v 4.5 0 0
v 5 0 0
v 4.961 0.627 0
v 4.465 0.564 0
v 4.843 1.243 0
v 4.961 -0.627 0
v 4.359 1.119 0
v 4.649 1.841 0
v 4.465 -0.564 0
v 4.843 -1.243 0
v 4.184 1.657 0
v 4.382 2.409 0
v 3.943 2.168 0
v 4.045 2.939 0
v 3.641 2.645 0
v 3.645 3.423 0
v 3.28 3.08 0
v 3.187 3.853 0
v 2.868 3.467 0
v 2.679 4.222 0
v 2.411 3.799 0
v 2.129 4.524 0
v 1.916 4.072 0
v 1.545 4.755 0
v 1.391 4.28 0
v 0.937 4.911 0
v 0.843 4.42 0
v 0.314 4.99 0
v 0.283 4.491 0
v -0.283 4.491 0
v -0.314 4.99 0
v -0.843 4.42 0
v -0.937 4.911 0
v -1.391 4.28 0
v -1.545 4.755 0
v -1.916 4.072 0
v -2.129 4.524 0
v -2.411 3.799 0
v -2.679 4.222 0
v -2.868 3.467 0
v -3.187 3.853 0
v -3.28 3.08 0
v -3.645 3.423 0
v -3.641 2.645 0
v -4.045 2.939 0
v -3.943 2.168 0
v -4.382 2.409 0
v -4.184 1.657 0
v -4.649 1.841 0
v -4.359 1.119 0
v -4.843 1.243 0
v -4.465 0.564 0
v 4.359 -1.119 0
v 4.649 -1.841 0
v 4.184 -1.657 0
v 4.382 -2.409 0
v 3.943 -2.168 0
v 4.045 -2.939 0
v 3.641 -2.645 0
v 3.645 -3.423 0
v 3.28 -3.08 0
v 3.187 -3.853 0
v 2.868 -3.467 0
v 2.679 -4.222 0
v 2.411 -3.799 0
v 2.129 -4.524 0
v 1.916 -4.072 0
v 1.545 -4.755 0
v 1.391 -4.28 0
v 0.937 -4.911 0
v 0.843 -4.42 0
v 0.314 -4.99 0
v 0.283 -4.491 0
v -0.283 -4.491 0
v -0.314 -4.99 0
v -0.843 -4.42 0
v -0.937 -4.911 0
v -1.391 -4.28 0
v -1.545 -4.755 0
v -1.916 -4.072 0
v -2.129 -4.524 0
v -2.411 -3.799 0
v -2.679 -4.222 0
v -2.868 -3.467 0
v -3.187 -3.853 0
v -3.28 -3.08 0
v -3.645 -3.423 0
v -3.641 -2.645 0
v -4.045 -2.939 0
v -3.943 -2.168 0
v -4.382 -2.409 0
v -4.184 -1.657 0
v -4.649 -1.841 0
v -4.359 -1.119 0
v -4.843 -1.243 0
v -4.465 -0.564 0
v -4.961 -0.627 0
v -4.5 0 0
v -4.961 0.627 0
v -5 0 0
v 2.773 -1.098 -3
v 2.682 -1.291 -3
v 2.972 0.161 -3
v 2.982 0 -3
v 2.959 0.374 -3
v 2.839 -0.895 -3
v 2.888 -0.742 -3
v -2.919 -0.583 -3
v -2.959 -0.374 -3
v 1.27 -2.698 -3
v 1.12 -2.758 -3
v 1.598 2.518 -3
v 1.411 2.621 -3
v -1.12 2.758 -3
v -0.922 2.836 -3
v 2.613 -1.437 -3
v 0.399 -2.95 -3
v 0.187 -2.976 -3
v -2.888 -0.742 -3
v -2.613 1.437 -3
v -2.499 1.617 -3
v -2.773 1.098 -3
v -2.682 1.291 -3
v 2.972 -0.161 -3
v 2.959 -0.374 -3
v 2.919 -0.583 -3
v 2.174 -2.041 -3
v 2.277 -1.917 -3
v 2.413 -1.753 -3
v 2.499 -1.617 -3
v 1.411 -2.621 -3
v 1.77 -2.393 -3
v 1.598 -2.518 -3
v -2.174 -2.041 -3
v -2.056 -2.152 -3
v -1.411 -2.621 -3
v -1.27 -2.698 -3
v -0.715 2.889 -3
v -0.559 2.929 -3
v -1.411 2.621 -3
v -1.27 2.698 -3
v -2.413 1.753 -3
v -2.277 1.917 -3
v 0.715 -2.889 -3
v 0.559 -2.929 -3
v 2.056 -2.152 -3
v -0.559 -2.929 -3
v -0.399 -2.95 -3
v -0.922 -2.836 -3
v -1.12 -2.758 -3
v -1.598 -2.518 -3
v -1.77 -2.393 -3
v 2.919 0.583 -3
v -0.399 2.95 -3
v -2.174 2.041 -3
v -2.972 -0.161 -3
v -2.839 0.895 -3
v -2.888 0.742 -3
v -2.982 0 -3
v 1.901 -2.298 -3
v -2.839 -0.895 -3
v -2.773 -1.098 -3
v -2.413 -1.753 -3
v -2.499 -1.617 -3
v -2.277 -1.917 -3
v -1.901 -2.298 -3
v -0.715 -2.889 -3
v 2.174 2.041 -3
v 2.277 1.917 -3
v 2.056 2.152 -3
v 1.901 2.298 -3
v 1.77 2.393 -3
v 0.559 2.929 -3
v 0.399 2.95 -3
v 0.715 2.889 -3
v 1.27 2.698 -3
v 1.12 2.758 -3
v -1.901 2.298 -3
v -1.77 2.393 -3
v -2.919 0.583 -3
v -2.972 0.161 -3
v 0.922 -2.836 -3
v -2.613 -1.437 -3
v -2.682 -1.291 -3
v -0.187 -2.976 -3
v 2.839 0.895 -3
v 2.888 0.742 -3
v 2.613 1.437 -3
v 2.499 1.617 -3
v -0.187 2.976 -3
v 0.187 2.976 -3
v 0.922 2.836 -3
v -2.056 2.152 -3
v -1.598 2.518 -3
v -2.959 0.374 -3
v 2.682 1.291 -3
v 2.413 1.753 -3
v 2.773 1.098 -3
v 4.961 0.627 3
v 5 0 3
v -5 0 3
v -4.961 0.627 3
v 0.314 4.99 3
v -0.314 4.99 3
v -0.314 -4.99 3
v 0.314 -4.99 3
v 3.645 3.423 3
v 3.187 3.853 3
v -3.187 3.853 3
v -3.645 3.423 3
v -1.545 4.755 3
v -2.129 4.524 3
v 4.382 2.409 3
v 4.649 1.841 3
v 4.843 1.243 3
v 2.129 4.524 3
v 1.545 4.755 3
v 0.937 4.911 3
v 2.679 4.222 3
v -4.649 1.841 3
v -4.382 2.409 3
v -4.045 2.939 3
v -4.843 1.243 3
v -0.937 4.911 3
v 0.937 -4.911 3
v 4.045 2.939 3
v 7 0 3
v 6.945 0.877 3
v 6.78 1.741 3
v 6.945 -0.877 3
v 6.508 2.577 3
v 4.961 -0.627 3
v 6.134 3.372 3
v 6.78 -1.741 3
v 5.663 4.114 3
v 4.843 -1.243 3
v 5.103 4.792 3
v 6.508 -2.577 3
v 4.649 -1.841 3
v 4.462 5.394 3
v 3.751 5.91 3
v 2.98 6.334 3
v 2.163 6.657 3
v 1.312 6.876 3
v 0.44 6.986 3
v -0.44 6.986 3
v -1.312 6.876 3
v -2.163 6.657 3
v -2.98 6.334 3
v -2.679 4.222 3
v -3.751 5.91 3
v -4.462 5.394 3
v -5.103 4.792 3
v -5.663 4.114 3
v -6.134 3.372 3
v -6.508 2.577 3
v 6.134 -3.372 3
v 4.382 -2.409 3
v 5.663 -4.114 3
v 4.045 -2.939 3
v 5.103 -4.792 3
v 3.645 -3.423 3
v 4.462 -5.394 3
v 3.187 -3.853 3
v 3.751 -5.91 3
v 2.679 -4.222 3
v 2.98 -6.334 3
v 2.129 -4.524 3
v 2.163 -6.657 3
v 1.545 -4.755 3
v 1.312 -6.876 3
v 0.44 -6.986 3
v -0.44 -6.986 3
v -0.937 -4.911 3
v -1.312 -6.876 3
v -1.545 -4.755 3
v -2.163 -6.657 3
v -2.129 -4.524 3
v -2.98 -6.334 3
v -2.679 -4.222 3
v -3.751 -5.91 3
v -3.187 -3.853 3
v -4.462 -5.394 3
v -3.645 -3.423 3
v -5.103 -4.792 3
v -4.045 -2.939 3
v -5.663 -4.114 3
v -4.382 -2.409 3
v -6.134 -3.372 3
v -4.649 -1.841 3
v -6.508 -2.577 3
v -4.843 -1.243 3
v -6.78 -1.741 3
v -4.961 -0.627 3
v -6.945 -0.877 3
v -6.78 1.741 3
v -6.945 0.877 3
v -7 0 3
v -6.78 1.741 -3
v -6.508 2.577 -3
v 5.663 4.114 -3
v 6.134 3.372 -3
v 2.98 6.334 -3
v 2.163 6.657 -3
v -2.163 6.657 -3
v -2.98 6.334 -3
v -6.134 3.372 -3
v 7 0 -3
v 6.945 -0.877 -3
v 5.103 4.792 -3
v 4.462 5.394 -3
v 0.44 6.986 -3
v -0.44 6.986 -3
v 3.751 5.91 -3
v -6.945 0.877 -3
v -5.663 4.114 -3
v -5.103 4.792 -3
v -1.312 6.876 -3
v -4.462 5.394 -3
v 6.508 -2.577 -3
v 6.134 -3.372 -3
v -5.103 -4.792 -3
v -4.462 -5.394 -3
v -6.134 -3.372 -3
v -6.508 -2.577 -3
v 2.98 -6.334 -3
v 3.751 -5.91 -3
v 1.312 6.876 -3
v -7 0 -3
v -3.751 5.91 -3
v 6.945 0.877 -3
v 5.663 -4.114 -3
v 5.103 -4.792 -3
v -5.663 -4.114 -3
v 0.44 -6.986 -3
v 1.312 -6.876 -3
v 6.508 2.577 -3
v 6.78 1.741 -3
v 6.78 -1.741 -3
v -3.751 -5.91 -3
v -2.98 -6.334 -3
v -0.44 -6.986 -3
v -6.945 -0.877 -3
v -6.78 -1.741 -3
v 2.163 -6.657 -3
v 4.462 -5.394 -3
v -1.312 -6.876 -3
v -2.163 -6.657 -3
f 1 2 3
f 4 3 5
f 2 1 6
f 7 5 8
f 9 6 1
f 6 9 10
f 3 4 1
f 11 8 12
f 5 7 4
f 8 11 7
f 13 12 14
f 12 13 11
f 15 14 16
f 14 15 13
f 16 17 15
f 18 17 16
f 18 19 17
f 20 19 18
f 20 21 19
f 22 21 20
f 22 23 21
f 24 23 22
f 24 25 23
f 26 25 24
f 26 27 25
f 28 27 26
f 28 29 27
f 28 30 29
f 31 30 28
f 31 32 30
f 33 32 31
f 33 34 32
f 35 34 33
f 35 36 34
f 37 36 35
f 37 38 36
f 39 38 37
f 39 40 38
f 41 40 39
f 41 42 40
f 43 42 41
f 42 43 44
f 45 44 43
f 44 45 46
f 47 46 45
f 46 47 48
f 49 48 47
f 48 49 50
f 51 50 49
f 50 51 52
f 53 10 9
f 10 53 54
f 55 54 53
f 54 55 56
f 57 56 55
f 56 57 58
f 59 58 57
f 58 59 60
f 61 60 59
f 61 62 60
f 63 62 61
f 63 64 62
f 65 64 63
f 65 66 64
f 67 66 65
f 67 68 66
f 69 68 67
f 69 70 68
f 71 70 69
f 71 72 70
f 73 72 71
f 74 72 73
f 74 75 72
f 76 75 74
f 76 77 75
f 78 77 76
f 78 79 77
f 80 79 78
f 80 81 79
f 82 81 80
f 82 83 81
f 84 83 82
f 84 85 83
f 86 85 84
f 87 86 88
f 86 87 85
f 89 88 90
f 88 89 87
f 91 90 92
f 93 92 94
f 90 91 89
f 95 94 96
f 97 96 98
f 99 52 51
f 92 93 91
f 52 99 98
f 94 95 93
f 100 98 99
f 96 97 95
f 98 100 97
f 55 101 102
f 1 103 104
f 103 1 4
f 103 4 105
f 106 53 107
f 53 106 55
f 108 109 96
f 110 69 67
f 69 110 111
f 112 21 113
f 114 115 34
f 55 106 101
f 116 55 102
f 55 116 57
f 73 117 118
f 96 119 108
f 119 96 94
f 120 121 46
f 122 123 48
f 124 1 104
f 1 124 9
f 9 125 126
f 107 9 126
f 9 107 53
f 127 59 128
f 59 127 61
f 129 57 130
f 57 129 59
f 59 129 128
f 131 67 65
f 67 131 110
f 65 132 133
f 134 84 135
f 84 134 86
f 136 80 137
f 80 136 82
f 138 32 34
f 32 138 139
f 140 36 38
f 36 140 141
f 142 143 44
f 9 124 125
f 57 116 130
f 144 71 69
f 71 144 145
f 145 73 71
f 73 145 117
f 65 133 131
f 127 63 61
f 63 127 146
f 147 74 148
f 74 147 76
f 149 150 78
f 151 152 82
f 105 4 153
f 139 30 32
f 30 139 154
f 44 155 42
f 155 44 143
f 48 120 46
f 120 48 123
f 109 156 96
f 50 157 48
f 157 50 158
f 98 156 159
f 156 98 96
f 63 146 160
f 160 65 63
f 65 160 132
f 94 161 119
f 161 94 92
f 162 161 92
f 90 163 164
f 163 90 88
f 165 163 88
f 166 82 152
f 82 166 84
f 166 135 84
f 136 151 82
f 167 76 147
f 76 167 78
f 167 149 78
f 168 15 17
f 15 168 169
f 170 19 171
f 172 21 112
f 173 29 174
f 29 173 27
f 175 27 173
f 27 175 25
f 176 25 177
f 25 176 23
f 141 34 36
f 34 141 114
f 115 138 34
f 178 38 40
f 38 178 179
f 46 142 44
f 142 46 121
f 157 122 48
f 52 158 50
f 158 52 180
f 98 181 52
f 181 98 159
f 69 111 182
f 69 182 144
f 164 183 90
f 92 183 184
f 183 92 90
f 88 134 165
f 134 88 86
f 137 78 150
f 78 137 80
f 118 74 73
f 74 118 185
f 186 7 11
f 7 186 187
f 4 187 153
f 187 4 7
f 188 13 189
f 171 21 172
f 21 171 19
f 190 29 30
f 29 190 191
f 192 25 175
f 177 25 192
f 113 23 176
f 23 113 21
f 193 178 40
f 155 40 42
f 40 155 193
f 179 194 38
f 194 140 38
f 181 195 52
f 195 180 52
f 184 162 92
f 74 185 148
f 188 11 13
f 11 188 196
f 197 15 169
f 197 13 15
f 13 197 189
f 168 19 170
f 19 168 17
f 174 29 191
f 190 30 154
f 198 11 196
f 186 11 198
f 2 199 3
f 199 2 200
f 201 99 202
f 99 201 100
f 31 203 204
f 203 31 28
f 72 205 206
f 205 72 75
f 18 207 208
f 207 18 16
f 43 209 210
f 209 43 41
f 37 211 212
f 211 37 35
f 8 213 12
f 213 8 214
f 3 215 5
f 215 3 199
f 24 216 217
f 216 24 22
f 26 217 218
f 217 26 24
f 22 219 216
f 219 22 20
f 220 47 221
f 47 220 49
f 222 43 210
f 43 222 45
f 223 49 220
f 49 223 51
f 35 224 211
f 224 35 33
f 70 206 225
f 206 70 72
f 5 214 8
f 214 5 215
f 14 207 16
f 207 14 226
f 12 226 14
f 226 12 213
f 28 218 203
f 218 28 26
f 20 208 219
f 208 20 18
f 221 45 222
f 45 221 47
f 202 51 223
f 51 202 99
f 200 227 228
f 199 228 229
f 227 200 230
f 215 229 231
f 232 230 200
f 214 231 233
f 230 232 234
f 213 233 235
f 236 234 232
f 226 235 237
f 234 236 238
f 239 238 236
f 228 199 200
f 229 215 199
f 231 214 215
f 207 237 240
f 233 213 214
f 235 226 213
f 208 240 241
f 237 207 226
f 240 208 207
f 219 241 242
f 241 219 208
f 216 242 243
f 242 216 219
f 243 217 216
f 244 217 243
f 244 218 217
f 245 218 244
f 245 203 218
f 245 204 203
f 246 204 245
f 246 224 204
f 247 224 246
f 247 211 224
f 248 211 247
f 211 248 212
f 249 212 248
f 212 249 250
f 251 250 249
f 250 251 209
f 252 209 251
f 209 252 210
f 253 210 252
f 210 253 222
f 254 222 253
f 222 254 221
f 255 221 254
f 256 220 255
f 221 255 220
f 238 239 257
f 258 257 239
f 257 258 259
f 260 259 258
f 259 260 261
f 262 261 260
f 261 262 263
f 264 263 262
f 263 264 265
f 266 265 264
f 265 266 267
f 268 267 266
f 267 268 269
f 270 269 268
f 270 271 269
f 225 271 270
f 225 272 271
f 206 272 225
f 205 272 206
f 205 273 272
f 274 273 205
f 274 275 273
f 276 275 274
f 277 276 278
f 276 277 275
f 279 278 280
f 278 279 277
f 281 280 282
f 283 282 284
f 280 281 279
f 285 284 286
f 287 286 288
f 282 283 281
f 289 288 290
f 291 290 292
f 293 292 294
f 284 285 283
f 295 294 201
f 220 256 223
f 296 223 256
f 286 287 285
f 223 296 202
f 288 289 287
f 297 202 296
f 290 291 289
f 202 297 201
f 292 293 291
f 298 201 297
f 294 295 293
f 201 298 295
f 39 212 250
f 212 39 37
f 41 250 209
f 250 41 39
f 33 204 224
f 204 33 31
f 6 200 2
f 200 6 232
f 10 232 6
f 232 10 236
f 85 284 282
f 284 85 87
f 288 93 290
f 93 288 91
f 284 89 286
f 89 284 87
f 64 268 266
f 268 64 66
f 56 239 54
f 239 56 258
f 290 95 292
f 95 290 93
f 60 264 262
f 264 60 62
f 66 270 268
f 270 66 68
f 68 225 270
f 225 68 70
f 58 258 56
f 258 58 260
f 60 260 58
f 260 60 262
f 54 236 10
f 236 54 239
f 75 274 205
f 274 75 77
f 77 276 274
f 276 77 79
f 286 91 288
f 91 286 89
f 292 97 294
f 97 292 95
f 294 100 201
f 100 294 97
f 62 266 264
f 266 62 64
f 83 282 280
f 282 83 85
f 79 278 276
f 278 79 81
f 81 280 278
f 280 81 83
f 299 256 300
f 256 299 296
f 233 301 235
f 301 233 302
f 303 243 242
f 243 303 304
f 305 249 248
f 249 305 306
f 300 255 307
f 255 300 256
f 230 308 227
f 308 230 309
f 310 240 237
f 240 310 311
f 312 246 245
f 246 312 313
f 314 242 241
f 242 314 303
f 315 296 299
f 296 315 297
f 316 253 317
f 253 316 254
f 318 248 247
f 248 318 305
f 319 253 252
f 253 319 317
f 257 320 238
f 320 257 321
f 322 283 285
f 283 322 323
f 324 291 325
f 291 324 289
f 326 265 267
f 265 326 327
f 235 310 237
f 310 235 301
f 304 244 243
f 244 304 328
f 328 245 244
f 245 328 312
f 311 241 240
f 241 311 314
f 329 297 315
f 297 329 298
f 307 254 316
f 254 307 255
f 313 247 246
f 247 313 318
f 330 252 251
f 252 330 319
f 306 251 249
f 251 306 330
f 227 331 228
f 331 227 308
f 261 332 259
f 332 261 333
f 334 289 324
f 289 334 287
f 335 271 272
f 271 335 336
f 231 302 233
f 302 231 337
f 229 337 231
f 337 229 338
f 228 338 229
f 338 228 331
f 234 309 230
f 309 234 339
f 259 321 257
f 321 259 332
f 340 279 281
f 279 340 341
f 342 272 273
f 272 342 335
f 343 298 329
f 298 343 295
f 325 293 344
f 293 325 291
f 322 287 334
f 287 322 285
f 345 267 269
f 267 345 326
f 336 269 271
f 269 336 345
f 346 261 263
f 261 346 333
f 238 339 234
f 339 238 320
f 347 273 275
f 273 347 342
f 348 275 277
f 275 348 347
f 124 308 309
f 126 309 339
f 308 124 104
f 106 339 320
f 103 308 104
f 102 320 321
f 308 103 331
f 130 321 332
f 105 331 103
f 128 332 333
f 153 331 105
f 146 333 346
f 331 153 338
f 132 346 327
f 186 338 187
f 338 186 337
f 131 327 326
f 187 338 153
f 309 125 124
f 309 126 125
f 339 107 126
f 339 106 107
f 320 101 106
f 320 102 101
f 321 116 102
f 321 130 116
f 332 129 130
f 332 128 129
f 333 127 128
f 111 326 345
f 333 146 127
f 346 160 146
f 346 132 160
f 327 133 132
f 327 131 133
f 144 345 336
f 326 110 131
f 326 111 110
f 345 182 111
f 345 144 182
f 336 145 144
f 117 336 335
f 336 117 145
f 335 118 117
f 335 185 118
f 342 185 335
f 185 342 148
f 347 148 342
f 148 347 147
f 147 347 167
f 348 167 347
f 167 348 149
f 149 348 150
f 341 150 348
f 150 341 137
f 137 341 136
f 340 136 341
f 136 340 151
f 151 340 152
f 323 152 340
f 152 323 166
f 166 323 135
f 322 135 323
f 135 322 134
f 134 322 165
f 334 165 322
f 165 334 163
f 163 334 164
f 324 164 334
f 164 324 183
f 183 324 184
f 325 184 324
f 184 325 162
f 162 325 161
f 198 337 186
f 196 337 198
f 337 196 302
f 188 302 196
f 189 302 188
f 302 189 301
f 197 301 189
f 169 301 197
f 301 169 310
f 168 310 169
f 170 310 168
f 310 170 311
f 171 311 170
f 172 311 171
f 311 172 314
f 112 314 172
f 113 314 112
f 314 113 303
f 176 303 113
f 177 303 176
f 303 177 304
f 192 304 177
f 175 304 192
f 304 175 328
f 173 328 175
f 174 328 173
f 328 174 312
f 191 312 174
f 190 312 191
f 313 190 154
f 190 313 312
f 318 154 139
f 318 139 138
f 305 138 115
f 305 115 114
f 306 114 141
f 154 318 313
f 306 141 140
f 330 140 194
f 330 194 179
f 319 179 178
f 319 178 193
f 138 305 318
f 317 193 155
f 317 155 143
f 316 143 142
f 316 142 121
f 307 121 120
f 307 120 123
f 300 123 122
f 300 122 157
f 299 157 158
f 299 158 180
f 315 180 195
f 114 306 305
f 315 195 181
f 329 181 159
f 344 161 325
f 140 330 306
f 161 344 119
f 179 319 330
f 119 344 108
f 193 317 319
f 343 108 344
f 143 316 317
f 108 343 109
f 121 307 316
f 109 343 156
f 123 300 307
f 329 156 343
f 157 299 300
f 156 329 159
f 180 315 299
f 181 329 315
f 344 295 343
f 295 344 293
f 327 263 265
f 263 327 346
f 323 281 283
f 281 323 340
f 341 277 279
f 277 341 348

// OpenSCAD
$fn = 50;

difference() {
	union() {
		translate(v = [0, 0, -3.0]) {
			cylinder(h = 6, r = 7.0);
		}
	}
	union() {
		translate(v = [0, 0, 0]) {
			rotate(a = [0, 0, 0]) {
				difference() {
					union() {
						translate(v = [0, 0, -6.0]) {
							cylinder(h = 6, r = 2.25);
						}
						translate(v = [0, 0, -4.2]) {
							cylinder(h = 4.2, r1 = 2.375, r2 = 4.5);
						}
						translate(v = [0, 0, -6.0]) {
							cylinder(h = 6, r = 2.375);
						}
						translate(v = [0, 0, -6.0]) {
							cylinder(h = 6, r = 2.25);
						}
					}
					union();
				}
			}
		}
		#cylinder(h = 3, r = 5.0);
	}
}
